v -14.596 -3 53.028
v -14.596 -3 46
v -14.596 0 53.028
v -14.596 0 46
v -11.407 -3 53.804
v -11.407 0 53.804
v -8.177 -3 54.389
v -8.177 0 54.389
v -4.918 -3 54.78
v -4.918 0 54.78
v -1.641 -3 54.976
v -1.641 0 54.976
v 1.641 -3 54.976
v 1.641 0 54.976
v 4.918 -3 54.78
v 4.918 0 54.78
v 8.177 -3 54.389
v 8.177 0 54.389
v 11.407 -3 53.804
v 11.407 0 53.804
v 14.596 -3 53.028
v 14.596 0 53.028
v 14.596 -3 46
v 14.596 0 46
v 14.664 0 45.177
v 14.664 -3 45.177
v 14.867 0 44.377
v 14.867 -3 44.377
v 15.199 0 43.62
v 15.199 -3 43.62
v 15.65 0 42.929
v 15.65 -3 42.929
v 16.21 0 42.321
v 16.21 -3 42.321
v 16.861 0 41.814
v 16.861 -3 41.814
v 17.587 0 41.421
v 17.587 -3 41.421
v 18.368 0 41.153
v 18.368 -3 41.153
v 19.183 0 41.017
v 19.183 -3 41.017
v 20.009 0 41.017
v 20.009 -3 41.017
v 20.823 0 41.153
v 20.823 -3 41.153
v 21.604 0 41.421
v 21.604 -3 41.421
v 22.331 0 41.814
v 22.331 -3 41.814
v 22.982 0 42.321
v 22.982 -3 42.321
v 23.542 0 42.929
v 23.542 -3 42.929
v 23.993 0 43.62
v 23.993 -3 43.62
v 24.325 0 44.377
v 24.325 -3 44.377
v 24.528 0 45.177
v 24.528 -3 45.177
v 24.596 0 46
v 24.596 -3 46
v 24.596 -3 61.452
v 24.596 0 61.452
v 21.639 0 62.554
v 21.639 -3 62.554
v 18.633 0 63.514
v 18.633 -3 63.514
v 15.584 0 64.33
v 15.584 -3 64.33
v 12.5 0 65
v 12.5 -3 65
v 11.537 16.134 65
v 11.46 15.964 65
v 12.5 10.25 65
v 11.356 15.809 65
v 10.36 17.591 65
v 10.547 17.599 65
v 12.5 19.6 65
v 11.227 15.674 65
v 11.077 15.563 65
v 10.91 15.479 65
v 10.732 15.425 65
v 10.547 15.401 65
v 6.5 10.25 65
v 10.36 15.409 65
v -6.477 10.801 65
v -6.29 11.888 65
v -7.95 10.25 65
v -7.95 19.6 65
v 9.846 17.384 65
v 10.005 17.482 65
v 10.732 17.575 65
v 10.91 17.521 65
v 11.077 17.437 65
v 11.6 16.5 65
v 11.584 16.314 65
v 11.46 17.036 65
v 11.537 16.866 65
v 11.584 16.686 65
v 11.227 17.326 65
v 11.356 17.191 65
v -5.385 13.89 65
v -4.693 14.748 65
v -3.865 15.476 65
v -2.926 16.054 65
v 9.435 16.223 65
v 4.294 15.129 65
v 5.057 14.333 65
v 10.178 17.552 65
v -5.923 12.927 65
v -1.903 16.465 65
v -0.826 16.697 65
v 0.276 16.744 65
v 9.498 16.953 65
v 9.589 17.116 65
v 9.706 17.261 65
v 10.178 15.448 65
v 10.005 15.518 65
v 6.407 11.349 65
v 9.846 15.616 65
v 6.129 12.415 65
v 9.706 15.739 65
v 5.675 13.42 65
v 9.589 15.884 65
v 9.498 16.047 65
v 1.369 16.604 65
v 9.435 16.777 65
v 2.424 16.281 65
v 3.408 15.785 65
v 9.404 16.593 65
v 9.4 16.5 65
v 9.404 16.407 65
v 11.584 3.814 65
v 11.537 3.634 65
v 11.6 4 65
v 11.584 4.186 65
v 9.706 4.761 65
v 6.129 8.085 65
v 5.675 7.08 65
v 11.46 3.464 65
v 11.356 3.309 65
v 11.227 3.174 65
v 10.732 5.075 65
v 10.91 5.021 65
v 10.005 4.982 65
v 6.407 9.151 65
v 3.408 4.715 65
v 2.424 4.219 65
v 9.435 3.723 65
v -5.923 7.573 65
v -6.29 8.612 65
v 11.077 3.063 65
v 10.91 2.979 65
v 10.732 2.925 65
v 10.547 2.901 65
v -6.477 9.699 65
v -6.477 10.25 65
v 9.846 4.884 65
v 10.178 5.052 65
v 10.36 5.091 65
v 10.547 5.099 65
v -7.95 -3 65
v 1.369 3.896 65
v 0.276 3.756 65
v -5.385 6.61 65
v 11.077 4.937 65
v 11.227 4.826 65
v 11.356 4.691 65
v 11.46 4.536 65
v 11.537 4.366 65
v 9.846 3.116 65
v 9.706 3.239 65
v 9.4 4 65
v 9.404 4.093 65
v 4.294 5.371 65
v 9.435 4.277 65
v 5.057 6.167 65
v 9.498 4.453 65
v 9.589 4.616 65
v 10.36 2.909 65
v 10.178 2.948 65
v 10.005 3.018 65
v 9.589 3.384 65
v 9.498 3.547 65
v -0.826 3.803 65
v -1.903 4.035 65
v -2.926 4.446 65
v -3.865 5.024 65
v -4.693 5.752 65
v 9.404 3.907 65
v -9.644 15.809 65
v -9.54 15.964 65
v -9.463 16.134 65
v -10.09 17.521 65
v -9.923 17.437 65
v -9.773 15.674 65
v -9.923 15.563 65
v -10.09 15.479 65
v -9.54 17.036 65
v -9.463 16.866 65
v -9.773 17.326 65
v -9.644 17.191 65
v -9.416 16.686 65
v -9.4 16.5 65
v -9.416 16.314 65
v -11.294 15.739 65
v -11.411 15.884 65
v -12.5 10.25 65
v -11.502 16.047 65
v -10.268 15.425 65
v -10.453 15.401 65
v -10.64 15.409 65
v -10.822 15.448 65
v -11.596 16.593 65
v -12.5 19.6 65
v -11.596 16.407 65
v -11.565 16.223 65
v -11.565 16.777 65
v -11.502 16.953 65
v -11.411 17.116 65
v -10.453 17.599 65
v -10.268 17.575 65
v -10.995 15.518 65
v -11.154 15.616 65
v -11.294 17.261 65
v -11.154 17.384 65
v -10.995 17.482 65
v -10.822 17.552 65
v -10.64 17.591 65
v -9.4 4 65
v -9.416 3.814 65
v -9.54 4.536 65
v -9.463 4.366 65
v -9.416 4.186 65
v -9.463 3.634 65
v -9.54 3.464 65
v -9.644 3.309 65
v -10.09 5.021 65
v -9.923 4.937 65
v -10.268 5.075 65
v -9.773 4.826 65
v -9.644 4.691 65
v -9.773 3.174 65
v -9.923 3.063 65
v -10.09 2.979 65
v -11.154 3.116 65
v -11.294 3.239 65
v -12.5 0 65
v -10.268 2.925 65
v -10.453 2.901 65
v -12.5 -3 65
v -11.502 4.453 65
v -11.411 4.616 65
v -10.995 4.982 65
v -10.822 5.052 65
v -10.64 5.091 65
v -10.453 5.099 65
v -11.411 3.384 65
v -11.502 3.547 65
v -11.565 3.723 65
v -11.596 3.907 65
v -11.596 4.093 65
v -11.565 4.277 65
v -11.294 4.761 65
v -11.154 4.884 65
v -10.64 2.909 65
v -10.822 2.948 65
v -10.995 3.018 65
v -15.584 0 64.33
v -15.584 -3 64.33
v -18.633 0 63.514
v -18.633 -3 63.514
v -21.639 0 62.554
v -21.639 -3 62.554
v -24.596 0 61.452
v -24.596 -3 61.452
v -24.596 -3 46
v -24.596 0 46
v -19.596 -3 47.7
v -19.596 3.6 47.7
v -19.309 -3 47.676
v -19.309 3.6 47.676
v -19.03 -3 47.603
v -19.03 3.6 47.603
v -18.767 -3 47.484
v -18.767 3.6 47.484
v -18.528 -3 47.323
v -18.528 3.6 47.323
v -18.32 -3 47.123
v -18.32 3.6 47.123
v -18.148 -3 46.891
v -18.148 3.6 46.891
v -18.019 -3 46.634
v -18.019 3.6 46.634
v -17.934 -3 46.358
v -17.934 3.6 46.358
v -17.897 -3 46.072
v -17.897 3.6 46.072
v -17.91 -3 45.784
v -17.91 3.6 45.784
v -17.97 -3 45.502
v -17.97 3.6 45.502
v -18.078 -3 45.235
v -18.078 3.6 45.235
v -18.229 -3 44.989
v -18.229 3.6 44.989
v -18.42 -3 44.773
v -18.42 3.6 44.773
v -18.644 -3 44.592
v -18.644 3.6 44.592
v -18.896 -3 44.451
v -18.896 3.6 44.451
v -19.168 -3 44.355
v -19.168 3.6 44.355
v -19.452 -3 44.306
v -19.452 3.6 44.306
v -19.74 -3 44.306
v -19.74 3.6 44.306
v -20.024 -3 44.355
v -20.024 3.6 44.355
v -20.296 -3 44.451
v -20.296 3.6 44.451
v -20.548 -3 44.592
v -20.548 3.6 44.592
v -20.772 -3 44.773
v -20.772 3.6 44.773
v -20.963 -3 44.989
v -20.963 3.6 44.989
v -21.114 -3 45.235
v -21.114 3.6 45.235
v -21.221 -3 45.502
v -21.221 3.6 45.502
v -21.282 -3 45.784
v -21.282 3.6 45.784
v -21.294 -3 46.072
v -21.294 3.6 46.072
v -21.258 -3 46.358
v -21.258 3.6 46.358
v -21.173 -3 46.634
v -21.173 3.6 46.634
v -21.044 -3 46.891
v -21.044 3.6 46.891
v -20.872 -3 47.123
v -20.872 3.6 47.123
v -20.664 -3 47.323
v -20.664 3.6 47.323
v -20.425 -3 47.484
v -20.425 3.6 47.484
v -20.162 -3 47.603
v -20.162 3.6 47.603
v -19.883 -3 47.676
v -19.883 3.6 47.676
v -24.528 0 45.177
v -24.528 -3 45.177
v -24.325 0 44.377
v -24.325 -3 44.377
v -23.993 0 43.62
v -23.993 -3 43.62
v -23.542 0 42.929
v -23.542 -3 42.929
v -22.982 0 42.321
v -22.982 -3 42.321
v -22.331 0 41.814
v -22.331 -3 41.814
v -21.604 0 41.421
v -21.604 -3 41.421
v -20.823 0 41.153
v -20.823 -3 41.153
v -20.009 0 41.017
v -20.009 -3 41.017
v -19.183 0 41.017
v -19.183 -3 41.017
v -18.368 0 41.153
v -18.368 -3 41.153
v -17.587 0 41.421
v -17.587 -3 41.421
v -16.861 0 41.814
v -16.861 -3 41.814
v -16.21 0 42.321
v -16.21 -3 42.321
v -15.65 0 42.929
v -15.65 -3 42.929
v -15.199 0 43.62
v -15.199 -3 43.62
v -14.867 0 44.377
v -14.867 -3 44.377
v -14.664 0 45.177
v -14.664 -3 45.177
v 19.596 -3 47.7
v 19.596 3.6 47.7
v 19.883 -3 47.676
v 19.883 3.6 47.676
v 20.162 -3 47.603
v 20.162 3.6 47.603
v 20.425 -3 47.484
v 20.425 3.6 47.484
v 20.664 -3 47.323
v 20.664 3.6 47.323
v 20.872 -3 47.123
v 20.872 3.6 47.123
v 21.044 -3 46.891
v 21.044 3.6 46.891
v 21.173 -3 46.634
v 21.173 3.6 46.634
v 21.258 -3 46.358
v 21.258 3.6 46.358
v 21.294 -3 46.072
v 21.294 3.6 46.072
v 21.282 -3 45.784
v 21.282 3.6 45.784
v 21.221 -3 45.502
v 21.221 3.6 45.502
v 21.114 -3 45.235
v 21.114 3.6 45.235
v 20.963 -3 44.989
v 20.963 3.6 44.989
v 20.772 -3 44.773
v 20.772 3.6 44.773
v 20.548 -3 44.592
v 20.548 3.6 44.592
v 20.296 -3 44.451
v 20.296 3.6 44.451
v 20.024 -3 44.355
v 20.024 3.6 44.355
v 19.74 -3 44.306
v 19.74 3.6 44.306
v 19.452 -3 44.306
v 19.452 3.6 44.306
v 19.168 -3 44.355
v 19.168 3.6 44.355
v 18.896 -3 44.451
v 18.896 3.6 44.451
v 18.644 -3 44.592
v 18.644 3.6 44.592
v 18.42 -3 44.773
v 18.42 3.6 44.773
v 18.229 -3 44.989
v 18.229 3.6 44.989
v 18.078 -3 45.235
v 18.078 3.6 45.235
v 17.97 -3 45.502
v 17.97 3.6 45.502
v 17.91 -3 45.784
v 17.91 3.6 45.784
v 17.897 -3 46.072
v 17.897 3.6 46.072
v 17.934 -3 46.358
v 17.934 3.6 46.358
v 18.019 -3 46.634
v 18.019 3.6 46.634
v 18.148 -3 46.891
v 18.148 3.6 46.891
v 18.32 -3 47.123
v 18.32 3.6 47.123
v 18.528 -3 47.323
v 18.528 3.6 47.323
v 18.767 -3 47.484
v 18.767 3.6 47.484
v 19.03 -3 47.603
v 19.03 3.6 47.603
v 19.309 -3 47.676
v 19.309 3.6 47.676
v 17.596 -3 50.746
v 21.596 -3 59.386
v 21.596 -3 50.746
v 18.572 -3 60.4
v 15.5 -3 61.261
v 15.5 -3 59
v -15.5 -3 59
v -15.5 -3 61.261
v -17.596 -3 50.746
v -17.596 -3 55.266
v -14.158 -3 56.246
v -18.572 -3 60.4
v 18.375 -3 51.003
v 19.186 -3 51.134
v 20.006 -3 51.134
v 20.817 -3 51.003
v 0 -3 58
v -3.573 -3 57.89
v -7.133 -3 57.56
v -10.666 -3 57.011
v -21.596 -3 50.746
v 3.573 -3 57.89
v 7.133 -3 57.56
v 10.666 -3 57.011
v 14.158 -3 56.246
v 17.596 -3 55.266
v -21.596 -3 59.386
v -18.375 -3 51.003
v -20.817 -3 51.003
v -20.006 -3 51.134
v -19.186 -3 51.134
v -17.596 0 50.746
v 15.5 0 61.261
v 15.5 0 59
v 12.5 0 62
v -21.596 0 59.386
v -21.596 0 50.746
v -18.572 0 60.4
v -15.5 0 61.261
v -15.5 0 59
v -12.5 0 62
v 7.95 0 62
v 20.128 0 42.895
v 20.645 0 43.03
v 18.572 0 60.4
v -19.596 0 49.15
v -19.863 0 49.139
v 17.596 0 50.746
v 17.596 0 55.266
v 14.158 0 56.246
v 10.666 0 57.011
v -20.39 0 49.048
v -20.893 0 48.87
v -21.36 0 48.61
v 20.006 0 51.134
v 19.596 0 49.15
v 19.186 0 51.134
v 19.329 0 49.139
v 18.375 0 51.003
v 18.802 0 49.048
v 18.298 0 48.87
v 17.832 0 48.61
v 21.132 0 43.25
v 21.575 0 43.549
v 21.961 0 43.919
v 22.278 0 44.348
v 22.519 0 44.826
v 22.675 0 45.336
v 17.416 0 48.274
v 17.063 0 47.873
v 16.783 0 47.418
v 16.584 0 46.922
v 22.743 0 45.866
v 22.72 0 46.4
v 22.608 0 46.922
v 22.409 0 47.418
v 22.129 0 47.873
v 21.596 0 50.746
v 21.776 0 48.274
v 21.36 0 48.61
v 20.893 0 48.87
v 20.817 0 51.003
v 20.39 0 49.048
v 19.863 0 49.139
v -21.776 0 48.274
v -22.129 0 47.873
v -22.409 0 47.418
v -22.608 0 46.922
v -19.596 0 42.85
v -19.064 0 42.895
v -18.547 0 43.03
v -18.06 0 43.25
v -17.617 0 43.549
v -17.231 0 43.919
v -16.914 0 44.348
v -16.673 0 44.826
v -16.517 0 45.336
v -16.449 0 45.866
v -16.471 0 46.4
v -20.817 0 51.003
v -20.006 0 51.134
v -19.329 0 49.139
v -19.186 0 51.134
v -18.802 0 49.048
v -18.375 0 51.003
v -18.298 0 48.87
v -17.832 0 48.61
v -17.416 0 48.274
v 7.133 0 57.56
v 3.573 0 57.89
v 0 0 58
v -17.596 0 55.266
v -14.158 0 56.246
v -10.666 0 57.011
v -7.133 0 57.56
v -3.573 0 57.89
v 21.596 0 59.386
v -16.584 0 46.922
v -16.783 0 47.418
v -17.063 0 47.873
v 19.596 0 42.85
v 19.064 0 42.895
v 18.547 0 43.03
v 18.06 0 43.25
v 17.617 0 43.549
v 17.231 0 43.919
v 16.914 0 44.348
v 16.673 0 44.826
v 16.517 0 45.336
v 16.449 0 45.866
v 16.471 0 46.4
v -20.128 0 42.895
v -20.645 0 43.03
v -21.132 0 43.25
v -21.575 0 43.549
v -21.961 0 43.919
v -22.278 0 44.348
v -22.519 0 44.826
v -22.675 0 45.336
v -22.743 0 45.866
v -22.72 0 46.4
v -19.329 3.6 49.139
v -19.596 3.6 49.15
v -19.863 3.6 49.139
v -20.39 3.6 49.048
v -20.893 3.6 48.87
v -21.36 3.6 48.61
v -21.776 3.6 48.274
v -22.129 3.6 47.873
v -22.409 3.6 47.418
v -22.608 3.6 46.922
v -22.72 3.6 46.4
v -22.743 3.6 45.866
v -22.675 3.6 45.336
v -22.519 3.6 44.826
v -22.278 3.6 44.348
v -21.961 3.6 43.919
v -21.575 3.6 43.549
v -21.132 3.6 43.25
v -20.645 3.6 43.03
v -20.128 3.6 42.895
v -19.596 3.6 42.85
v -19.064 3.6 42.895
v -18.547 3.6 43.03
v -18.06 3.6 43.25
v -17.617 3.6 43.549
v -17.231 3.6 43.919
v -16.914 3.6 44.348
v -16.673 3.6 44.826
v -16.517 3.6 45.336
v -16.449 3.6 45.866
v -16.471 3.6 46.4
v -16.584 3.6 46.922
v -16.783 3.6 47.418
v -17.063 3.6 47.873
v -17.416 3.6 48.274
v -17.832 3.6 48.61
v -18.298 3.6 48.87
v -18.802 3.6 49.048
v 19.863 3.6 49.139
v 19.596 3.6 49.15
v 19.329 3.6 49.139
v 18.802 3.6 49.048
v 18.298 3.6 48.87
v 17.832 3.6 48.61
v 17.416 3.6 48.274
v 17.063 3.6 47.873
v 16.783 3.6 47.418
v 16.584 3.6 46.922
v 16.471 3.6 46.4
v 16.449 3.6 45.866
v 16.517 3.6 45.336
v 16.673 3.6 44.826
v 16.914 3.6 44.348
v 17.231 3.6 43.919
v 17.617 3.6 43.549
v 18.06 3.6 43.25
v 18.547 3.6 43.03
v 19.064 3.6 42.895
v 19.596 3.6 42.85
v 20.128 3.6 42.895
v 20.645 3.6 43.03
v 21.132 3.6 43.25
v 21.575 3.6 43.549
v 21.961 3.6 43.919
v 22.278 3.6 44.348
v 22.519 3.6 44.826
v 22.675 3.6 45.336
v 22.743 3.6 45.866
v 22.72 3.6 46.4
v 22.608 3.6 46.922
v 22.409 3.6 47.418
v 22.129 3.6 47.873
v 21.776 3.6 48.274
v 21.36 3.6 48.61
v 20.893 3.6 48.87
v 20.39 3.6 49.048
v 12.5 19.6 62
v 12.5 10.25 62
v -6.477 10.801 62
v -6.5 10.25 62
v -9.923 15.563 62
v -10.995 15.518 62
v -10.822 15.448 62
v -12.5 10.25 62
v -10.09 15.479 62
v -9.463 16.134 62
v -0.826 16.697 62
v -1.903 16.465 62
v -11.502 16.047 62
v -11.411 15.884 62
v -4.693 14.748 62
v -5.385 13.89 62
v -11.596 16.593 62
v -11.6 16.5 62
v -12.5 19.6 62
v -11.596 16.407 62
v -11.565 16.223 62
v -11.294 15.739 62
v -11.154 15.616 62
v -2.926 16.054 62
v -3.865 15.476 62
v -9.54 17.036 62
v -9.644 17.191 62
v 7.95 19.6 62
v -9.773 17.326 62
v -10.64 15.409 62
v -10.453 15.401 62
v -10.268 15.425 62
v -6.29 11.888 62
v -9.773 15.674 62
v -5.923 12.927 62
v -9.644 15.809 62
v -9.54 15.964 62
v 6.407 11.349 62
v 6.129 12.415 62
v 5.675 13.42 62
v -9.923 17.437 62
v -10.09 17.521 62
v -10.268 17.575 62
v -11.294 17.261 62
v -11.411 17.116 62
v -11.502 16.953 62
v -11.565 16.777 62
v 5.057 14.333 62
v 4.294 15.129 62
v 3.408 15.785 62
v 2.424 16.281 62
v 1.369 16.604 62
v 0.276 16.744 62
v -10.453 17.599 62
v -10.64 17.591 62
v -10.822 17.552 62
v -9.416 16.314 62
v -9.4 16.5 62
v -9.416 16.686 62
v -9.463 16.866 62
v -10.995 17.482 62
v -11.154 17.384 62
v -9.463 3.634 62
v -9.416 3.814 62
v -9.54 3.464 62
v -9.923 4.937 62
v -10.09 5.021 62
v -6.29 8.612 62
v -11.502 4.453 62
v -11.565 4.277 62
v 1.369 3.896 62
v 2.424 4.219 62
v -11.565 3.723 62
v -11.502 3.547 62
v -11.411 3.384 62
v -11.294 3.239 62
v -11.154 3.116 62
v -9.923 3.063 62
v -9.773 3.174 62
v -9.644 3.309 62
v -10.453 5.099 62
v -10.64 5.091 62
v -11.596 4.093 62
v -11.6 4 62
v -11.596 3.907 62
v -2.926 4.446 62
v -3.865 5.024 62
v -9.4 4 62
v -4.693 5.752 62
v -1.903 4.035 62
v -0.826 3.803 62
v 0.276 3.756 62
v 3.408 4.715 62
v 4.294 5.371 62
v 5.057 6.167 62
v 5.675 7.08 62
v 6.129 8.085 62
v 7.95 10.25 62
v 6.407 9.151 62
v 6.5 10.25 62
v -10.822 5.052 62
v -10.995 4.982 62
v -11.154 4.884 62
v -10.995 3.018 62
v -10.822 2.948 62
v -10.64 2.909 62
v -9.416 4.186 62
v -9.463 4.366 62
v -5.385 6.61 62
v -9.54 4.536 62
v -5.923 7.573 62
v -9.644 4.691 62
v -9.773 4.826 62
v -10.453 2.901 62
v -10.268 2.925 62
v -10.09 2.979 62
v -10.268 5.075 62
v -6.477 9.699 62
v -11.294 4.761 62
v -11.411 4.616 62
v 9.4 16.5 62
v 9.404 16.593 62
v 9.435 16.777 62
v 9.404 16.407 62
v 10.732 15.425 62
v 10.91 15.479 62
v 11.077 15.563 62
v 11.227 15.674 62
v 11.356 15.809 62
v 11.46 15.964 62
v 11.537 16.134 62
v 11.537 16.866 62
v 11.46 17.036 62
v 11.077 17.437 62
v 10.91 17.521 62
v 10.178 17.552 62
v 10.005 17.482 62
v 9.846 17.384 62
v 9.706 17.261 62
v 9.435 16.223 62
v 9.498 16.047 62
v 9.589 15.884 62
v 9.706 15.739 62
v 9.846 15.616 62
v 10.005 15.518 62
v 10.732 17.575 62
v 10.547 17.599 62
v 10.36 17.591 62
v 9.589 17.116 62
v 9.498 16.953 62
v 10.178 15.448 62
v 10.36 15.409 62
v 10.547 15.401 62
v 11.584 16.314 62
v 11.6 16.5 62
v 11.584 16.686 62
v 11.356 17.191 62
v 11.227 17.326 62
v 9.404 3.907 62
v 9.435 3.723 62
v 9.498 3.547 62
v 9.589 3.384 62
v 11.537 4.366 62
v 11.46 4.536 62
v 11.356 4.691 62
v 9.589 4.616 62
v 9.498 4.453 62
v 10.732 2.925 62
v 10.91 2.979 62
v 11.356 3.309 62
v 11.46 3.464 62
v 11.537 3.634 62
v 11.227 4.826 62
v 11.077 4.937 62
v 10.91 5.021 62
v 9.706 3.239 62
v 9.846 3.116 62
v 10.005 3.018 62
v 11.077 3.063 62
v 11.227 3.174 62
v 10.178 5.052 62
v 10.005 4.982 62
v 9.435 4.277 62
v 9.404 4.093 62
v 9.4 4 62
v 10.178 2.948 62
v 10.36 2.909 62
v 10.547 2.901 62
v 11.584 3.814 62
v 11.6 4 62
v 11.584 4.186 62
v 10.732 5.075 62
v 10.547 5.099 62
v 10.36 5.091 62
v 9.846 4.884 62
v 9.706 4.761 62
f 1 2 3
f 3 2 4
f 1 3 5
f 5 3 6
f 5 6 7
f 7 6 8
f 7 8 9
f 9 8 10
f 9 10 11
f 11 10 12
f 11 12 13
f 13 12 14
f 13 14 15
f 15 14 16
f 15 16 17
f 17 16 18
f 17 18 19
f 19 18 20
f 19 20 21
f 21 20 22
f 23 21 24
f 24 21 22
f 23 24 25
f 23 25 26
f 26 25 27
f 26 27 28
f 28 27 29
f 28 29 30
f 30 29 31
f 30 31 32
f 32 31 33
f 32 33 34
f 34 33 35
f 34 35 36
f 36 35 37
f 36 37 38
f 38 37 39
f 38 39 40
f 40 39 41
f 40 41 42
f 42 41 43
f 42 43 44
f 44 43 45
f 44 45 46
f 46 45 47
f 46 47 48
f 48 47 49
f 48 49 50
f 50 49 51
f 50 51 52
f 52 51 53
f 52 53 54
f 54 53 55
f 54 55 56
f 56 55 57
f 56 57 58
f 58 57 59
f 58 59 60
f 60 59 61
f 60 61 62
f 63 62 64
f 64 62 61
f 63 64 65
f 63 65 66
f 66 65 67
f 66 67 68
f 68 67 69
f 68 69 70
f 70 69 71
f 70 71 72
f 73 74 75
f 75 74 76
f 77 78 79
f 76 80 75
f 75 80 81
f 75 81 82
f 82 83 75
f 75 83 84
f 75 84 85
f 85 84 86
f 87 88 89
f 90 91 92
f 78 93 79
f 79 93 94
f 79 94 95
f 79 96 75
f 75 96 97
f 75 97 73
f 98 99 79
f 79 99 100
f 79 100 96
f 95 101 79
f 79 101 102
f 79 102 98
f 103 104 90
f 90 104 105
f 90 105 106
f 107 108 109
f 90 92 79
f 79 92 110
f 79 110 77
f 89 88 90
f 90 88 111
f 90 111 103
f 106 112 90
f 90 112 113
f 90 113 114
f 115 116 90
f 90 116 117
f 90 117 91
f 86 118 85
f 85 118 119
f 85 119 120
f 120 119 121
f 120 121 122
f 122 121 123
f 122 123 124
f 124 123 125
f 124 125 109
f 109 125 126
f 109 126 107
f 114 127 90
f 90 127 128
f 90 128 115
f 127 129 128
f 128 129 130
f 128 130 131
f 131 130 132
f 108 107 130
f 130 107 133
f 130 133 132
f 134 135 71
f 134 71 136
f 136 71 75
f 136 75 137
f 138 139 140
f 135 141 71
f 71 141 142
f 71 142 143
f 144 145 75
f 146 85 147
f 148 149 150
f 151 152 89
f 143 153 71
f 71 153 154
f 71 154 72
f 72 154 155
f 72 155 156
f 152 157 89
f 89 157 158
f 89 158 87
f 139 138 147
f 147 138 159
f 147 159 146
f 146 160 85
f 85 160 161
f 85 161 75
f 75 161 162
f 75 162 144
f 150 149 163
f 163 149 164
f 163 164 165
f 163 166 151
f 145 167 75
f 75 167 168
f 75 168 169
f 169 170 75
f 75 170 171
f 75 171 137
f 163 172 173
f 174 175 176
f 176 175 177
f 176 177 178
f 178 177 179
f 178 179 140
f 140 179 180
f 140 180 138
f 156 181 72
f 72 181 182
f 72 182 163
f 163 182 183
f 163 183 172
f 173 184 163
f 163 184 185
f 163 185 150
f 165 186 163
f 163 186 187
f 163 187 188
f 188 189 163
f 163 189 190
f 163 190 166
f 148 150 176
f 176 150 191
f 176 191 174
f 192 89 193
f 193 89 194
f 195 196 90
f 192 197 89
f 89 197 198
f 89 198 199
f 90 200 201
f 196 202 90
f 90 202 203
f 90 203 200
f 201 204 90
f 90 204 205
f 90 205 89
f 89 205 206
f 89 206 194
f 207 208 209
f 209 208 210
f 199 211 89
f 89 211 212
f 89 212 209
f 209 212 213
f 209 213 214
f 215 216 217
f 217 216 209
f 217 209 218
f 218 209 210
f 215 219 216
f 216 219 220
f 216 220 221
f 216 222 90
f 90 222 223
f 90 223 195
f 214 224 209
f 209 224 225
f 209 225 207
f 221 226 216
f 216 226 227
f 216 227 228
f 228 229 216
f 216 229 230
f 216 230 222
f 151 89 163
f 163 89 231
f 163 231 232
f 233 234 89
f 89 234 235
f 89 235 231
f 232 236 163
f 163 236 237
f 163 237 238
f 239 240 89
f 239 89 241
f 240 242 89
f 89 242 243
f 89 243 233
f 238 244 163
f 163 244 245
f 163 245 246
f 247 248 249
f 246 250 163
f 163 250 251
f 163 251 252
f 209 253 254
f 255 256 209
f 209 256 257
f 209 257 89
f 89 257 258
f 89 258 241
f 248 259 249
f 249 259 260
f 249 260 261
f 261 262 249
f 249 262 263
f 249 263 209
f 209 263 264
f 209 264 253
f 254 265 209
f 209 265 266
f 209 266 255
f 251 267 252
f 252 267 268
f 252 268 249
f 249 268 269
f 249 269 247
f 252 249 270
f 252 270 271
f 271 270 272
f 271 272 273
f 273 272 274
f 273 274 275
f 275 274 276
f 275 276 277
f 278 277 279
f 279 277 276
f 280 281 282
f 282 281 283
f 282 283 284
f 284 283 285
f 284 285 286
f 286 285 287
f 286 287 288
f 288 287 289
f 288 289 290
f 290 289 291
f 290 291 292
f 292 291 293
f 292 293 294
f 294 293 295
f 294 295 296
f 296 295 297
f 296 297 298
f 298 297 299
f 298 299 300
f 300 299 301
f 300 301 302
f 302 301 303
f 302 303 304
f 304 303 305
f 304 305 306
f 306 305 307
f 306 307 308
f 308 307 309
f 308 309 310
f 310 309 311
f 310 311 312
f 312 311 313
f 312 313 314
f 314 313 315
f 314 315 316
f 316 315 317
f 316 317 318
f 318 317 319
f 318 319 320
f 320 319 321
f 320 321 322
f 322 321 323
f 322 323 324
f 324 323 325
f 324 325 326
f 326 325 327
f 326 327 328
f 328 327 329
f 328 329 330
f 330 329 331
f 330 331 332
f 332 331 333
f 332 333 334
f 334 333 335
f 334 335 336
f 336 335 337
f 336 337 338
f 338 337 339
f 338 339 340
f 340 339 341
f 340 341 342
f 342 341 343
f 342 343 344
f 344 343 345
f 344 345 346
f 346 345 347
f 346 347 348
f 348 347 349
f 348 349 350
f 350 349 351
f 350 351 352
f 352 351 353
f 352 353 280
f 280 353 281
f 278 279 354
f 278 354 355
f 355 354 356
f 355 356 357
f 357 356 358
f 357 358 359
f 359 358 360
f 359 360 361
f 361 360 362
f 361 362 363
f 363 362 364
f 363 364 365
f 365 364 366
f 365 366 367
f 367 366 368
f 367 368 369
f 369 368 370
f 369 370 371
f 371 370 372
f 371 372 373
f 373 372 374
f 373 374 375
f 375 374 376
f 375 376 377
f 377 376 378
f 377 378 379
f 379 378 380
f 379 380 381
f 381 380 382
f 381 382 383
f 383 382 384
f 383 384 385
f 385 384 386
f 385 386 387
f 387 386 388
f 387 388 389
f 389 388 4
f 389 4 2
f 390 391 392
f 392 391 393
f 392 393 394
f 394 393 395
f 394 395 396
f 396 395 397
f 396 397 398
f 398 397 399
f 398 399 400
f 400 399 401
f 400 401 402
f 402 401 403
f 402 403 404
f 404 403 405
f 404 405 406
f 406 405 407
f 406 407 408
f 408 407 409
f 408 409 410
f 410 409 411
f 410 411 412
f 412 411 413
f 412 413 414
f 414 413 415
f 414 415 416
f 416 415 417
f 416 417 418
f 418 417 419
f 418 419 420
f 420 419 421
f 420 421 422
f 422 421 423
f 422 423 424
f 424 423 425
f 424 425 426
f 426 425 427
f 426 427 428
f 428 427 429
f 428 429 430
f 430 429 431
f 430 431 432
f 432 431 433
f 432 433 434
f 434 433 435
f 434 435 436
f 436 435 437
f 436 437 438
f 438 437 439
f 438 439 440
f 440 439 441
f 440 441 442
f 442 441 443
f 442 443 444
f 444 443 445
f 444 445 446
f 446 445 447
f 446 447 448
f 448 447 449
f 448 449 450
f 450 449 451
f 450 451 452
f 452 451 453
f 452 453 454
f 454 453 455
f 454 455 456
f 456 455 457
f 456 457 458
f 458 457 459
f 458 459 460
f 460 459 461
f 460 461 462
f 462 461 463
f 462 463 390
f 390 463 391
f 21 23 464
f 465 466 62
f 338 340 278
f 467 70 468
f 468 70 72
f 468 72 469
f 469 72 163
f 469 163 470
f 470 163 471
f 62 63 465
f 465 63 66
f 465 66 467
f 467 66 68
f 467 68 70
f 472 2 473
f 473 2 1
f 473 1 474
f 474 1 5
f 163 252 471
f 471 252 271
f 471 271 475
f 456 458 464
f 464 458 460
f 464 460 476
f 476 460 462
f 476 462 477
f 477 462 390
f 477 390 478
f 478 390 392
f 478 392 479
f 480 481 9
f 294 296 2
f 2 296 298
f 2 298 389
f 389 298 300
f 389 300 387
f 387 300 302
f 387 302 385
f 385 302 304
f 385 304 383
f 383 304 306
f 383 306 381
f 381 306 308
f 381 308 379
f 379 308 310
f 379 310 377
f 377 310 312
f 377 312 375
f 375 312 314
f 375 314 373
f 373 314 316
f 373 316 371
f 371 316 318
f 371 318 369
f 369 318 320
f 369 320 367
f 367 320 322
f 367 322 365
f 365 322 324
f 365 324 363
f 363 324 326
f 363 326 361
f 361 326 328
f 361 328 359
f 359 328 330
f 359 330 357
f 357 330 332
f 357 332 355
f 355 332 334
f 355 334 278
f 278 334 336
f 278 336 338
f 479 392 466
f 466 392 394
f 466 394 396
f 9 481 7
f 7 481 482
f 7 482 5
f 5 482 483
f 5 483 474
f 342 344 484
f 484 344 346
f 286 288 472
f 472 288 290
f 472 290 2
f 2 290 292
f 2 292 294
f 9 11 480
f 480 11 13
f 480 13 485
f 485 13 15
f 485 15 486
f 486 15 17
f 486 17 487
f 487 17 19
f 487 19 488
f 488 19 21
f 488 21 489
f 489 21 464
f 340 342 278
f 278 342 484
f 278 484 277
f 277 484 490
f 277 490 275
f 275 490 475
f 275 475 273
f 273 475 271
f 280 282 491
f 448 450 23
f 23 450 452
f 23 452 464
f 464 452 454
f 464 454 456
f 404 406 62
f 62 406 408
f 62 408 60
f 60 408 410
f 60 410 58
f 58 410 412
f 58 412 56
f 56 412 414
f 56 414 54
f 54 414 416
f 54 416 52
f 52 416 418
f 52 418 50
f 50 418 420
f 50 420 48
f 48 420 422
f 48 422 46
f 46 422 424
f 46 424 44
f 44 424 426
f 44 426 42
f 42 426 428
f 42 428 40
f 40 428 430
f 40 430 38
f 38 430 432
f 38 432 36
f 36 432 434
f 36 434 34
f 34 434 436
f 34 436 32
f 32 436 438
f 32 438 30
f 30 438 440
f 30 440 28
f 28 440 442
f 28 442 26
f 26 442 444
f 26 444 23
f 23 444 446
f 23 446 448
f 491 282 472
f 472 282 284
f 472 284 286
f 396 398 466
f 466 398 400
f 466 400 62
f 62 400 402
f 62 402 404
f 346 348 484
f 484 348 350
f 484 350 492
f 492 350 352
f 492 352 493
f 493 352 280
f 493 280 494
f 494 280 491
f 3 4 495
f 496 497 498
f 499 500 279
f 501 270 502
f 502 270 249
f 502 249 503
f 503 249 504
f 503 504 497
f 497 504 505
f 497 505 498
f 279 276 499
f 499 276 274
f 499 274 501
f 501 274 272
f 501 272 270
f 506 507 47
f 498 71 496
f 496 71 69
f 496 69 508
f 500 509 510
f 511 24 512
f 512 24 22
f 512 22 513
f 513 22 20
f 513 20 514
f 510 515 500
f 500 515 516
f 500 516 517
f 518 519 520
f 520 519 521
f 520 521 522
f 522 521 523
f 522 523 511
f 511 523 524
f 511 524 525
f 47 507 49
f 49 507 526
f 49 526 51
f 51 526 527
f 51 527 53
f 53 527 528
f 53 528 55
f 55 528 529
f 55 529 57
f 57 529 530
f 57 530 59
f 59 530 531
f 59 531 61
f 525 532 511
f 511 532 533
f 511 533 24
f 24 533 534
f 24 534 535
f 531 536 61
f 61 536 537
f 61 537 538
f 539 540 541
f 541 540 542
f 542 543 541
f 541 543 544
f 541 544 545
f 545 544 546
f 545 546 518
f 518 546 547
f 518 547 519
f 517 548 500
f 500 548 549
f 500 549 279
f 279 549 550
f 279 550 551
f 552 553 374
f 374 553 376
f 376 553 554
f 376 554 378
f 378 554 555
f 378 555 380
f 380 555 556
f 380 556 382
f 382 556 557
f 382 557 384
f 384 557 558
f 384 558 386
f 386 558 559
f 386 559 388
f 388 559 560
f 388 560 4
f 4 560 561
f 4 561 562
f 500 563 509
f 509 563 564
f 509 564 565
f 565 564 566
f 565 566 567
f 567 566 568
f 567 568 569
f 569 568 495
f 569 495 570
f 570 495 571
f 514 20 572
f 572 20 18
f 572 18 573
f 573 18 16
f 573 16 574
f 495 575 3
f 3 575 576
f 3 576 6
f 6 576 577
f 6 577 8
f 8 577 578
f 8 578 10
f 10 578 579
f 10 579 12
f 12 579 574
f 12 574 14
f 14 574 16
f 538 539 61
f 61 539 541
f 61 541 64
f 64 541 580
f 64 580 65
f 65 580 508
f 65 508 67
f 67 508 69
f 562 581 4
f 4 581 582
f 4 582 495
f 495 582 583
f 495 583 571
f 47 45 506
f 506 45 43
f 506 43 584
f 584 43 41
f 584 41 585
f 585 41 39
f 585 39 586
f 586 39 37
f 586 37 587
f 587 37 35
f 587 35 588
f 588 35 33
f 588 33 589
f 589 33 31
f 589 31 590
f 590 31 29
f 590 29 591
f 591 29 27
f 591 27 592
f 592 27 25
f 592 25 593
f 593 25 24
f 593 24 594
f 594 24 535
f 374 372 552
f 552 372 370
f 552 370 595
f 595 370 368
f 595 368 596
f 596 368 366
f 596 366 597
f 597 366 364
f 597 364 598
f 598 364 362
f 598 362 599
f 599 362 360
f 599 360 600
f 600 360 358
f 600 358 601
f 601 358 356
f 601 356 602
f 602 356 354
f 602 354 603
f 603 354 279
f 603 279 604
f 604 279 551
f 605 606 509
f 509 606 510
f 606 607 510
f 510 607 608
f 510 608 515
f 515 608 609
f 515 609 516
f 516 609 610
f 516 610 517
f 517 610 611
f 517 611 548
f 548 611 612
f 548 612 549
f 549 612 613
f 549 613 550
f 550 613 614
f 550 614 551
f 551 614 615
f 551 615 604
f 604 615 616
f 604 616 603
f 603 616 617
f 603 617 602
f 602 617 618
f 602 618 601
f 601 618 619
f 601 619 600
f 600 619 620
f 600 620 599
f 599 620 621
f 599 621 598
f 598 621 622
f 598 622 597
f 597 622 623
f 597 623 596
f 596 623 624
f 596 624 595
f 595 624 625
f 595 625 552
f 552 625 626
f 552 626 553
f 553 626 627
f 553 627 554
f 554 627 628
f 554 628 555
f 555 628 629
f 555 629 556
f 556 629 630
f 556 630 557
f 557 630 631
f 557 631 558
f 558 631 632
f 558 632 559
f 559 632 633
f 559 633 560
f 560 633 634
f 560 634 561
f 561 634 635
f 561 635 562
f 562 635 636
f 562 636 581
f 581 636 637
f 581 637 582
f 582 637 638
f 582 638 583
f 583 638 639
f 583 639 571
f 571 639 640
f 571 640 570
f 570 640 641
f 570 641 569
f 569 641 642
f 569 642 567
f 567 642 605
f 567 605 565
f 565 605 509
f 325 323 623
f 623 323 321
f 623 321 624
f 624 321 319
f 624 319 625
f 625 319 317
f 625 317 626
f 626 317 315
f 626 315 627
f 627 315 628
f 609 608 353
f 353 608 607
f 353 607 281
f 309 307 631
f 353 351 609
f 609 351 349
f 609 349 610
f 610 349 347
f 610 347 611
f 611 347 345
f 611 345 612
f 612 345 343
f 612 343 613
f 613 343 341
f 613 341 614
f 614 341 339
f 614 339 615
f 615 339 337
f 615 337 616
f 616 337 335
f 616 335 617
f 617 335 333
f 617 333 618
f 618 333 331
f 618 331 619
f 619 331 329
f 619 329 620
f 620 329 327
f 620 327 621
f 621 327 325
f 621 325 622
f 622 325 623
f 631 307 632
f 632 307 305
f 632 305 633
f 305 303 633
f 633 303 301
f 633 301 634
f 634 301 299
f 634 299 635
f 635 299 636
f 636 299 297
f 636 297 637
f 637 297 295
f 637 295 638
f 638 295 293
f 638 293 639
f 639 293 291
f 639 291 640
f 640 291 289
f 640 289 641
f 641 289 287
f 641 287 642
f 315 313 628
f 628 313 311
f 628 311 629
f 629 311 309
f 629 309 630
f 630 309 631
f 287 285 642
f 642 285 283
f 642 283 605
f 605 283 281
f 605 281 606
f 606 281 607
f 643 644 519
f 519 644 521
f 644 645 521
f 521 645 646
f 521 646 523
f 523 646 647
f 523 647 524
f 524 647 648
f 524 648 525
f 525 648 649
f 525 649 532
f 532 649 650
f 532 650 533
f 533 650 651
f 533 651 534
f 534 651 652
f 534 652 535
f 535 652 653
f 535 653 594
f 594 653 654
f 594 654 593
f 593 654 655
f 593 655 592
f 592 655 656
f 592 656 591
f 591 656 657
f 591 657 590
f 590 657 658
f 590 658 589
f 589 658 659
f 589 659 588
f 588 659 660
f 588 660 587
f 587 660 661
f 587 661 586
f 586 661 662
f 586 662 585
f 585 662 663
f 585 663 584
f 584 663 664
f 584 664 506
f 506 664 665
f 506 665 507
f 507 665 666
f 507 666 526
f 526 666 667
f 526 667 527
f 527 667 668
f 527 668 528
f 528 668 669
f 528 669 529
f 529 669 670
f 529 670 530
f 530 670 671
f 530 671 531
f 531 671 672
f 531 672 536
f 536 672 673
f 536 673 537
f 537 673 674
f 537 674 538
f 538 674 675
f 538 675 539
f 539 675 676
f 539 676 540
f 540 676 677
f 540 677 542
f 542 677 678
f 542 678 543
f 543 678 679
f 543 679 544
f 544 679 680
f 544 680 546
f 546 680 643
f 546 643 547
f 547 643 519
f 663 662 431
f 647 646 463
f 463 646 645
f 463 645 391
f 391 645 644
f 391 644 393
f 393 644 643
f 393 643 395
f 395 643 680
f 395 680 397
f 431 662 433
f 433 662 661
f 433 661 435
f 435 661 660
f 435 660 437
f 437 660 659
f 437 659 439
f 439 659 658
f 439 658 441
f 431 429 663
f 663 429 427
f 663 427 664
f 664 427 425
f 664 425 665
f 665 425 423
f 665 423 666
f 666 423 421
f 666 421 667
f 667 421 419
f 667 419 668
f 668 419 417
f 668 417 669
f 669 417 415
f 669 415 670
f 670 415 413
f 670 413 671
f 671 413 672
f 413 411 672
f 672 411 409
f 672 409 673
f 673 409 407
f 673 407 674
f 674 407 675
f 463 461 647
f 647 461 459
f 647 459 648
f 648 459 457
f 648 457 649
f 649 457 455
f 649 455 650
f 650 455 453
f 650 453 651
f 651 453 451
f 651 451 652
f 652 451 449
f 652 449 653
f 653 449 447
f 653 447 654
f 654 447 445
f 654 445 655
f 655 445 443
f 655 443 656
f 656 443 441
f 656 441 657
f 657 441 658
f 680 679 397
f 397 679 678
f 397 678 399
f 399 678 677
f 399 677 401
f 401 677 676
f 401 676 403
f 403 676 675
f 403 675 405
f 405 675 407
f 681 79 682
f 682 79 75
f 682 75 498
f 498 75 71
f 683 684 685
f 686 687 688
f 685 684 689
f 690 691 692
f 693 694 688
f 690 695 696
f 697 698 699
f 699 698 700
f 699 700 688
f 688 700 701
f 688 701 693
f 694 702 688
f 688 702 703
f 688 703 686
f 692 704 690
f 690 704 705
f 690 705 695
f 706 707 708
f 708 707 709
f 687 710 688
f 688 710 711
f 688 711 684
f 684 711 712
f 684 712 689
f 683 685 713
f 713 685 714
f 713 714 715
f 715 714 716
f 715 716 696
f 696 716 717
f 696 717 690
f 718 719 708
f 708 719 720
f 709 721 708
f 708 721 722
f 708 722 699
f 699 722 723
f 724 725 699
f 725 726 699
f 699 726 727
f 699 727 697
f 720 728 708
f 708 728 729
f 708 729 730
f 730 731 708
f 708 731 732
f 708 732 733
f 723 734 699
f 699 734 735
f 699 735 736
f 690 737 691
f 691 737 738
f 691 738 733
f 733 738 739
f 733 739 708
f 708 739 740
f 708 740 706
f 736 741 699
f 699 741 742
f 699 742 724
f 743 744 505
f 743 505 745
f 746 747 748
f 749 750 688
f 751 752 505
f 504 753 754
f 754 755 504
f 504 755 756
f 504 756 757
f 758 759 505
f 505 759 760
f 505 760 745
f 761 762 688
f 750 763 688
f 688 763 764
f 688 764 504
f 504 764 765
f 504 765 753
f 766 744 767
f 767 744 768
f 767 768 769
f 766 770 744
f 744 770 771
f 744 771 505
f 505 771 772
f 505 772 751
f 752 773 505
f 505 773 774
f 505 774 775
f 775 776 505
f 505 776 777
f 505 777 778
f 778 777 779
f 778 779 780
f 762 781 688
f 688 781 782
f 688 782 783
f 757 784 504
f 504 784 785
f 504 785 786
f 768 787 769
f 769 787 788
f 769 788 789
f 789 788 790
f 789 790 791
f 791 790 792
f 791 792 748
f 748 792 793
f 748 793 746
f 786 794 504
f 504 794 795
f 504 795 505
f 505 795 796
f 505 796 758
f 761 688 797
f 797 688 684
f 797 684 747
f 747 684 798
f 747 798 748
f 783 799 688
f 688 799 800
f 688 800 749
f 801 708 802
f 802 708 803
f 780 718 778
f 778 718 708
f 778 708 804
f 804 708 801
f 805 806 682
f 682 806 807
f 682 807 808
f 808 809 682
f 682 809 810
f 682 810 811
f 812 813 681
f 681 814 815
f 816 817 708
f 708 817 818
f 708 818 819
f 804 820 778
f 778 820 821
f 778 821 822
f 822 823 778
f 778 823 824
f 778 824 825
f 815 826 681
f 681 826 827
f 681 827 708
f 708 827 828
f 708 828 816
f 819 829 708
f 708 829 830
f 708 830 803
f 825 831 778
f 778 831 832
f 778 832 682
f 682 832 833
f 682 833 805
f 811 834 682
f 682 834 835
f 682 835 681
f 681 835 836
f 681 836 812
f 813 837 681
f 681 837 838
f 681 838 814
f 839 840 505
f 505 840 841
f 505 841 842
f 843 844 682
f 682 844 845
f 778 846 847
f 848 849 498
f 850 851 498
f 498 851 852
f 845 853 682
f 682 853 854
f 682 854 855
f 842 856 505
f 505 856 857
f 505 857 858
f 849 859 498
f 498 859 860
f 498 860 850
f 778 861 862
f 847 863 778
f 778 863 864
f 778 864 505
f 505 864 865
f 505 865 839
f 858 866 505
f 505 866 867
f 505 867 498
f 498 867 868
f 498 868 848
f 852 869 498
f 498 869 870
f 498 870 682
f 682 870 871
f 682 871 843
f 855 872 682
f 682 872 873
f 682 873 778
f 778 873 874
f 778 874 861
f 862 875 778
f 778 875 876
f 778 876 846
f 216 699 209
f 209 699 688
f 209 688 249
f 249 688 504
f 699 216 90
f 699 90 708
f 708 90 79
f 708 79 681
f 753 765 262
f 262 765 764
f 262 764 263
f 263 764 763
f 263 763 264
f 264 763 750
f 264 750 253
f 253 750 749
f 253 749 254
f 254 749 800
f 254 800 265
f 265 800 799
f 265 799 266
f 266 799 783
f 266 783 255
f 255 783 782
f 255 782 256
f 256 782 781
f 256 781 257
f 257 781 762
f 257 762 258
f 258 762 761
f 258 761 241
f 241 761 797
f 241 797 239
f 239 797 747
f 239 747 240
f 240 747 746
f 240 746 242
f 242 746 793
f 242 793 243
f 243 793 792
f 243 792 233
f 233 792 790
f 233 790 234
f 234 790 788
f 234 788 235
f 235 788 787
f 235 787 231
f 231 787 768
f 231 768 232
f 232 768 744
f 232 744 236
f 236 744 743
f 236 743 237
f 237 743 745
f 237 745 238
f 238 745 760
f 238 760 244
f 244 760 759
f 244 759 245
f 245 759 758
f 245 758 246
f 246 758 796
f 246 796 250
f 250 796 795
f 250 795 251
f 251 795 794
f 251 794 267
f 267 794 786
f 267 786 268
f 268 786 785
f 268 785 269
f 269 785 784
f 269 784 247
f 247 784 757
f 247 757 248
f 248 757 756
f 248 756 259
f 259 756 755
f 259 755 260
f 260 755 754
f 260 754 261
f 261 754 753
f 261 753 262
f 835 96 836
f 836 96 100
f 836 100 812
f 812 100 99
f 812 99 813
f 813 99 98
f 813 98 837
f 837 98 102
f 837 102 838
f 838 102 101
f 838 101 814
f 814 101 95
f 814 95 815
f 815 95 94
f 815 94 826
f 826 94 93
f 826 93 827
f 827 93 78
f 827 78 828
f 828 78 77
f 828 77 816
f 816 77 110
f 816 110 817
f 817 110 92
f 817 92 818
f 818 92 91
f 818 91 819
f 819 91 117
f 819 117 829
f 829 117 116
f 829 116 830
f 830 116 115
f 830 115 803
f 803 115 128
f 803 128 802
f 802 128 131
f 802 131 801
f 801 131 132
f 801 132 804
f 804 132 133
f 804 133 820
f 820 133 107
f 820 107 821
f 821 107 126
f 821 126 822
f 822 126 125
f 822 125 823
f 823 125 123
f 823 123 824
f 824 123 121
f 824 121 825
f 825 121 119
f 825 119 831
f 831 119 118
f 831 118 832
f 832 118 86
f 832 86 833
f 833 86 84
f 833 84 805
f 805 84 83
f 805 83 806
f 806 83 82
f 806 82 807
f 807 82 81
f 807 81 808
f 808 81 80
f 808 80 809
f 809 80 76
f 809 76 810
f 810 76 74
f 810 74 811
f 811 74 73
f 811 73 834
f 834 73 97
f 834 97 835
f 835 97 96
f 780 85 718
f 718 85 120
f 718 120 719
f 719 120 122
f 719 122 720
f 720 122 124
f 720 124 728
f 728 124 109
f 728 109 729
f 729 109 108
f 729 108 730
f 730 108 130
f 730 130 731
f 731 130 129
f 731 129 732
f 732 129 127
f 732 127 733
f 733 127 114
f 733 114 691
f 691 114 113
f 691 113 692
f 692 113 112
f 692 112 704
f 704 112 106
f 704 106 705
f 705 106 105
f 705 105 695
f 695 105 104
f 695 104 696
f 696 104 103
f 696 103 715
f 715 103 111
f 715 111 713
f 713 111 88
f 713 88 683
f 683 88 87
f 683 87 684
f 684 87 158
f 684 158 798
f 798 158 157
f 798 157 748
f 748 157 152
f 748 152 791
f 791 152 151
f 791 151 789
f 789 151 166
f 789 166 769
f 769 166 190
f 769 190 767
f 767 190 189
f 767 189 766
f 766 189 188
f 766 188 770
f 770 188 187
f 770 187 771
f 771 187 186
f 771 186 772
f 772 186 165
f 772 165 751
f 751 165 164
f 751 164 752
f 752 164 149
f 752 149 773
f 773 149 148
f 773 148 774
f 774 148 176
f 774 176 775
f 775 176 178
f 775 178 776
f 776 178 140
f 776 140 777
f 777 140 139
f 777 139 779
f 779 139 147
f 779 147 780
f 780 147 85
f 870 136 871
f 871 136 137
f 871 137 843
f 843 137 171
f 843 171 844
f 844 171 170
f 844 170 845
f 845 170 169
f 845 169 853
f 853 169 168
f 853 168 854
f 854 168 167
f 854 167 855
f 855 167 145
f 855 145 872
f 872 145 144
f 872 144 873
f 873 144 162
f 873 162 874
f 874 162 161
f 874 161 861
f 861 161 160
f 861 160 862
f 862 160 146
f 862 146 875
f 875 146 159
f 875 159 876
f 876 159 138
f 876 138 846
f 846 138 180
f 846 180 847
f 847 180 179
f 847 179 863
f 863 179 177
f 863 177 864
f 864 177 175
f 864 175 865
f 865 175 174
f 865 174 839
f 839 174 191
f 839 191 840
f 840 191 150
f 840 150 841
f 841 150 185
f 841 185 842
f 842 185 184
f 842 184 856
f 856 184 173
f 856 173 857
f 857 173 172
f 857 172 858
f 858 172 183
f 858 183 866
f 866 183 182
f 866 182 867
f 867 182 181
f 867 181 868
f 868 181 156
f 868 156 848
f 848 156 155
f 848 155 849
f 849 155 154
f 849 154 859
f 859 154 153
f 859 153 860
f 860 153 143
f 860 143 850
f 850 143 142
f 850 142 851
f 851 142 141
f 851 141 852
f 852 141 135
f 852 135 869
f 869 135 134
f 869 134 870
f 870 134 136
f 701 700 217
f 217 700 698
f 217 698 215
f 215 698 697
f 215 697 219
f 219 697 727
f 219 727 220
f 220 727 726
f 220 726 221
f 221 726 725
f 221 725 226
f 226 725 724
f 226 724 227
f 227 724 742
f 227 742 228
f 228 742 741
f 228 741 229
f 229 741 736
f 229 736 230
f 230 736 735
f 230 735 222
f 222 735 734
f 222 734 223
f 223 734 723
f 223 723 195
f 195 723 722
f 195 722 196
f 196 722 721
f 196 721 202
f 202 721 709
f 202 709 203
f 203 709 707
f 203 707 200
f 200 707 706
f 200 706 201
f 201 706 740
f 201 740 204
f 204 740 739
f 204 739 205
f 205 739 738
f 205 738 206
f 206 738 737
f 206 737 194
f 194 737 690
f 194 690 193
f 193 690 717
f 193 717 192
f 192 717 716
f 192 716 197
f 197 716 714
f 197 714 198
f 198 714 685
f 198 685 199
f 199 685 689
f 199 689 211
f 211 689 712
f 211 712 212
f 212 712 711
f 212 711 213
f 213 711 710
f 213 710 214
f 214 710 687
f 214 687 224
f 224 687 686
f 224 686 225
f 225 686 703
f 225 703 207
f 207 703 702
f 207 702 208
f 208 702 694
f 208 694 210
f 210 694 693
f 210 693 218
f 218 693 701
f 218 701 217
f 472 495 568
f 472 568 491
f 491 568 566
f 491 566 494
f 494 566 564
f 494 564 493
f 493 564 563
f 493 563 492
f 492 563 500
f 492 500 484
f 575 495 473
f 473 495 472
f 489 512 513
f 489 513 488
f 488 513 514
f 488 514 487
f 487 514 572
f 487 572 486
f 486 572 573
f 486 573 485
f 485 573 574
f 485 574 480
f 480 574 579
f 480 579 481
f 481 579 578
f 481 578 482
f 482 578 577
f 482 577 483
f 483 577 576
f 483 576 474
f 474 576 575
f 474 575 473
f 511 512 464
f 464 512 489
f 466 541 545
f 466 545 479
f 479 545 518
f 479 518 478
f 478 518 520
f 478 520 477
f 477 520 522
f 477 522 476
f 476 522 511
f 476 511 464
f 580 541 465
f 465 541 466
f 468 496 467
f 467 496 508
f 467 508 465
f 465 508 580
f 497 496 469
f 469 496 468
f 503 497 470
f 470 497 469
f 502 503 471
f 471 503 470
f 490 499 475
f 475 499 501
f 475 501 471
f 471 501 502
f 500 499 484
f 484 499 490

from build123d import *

# Parameters (mm, degrees)
SKETCH1_R           = 1.7
BOSS_EXTRUDE2_DEPTH = 3
SKETCH1_5_R         = 3.15
SKETCH1_5_R_2       = 1.7
SKETCH1_5_W         = 25
SKETCH1_5_H         = 3
BOSS_EXTRUDE3_DEPTH = 3.6
BOSS_EXTRUDE4_START = 3.6
SKETCH1_7_W         = 25
SKETCH1_7_H         = 3
BOSS_EXTRUDE4_DEPTH = 16
CUT_EXTRUDE1_REACH  = 26
SKETCH2_R           = 1.1
SKETCH2_R_2         = 6.5
CUT_EXTRUDE2_REACH  = 5


with BuildPart() as part:
    # Sketch1 → Boss-Extrude2 (new body)
    with BuildSketch(Plane(origin=(0, 0, 0), x_dir=(1, 0, 0), z_dir=(0, 1, 0))):
        with BuildLine():
            ThreePointArc((24.595917942, -46), (19.595917942, -41), (14.595917942, -46))
            Line((14.595917942, -46), (14.595917942, -53.027909439))
            ThreePointArc((14.595917942, -53.027909439), (0, -55), (-14.595917942, -53.027909439))
            Line((-14.595917942, -53.027909439), (-14.595917942, -46))
            ThreePointArc((-14.595917942, -46), (-19.595917942, -41), (-24.595917942, -46))
            Line((-24.595917942, -46), (-24.595917942, -61.451532288))
            ThreePointArc((-24.595917942, -61.451532288), (-18.632624286, -63.514370911), (-12.5, -65))
            Line((-12.5, -65), (12.5, -65))
            ThreePointArc((12.5, -65), (18.632624286, -63.514370911), (24.595917942, -61.451532288))
            Line((24.595917942, -61.451532288), (24.595917942, -46))
        make_face()
        with Locations((-19.595917942, -46)):
            Circle(SKETCH1_R, mode=Mode.SUBTRACT)
        with Locations((19.595917942, -46)):
            Circle(SKETCH1_R, mode=Mode.SUBTRACT)
    extrude(amount=-BOSS_EXTRUDE2_DEPTH)

    # Sketch1<5> → Boss-Extrude3 (add)
    with BuildSketch(Plane(origin=(0, 0, 0), x_dir=(1, 0, 0), z_dir=(0, 1, 0))):
        with Locations((-19.595917942, -46)):
            Circle(SKETCH1_5_R)
        with Locations((-19.595917942, -46)):
            Circle(SKETCH1_5_R_2, mode=Mode.SUBTRACT)
        with Locations((19.595917942, -46)):
            Circle(SKETCH1_5_R)
        with Locations((19.595917942, -46)):
            Circle(SKETCH1_5_R_2, mode=Mode.SUBTRACT)
        with Locations((0, -63.5)):
            Rectangle(SKETCH1_5_W, SKETCH1_5_H)
    extrude(amount=BOSS_EXTRUDE3_DEPTH)

    # Sketch1<7> → Boss-Extrude4 (add)
    with BuildSketch(Plane(origin=(0, 0, 0), x_dir=(1, 0, 0), z_dir=(0, 1, 0)).offset(BOSS_EXTRUDE4_START)):
        with Locations((0, -63.5)):
            Rectangle(SKETCH1_7_W, SKETCH1_7_H)
    extrude(amount=BOSS_EXTRUDE4_DEPTH)

    # Sketch2 → Cut-Extrude1 (cut, up to next)
    with BuildSketch(Plane.XY.offset(65), mode=Mode.PRIVATE) as cut_extrude1_sk1:
        with Locations((-10.5, 4)):
            Circle(SKETCH2_R)
    cut_extrude1_tool1 = extrude(cut_extrude1_sk1.sketch, amount=-CUT_EXTRUDE1_REACH, mode=Mode.PRIVATE) & part.part
    add(cut_extrude1_tool1.solids().sort_by_distance((-10.5, 4, 65))[0], mode=Mode.SUBTRACT)
    # Sketch2 → Cut-Extrude1 (cut, up to next)
    with BuildSketch(Plane.XY.offset(65), mode=Mode.PRIVATE) as cut_extrude1_sk2:
        with Locations((-10.5, 16.5)):
            Circle(SKETCH2_R)
    cut_extrude1_tool2 = extrude(cut_extrude1_sk2.sketch, amount=-CUT_EXTRUDE1_REACH, mode=Mode.PRIVATE) & part.part
    add(cut_extrude1_tool2.solids().sort_by_distance((-10.5, 16.5, 65))[0], mode=Mode.SUBTRACT)
    # Sketch2 → Cut-Extrude1 (cut, up to next)
    with BuildSketch(Plane.XY.offset(65), mode=Mode.PRIVATE) as cut_extrude1_sk3:
        with Locations((10.5, 4)):
            Circle(SKETCH2_R)
    cut_extrude1_tool3 = extrude(cut_extrude1_sk3.sketch, amount=-CUT_EXTRUDE1_REACH, mode=Mode.PRIVATE) & part.part
    add(cut_extrude1_tool3.solids().sort_by_distance((10.5, 4, 65))[0], mode=Mode.SUBTRACT)
    # Sketch2 → Cut-Extrude1 (cut, up to next)
    with BuildSketch(Plane.XY.offset(65), mode=Mode.PRIVATE) as cut_extrude1_sk4:
        with Locations((10.5, 16.5)):
            Circle(SKETCH2_R)
    cut_extrude1_tool4 = extrude(cut_extrude1_sk4.sketch, amount=-CUT_EXTRUDE1_REACH, mode=Mode.PRIVATE) & part.part
    add(cut_extrude1_tool4.solids().sort_by_distance((10.5, 16.5, 65))[0], mode=Mode.SUBTRACT)
    # Sketch2 → Cut-Extrude1 (cut, up to next)
    with BuildSketch(Plane.XY.offset(65), mode=Mode.PRIVATE) as cut_extrude1_sk5:
        with Locations((0, 10.25)):
            Circle(SKETCH2_R_2)
    cut_extrude1_tool5 = extrude(cut_extrude1_sk5.sketch, amount=-CUT_EXTRUDE1_REACH, mode=Mode.PRIVATE) & part.part
    add(cut_extrude1_tool5.solids().sort_by_distance((0, 10.25, 65))[0], mode=Mode.SUBTRACT)

    # Sketch3 → Cut-Extrude2 (cut, up to next)
    with BuildSketch(Plane(origin=(0, 0, 0), x_dir=(1, 0, 0), z_dir=(0, 1, 0)), mode=Mode.PRIVATE) as cut_extrude2_sk1:
        with BuildLine():
            Line((-15.5, -61.260541388), (-15.5, -59))
            Line((-15.5, -59), (15.5, -59))
            Line((15.5, -59), (15.5, -61.260541388))
            ThreePointArc((15.5, -61.260541388), (18.571620144, -60.400321658), (21.595917942, -59.386195866))
            Line((21.595917942, -59.386195866), (21.595917942, -50.745787606))
            ThreePointArc((21.595917942, -50.745787606), (19.595917942, -51.15), (17.595917942, -50.745787606))
            Line((17.595917942, -50.745787606), (17.595917942, -55.266478735))
            ThreePointArc((17.595917942, -55.266478735), (0, -58), (-17.595917942, -55.266478735))
            Line((-17.595917942, -55.266478735), (-17.595917942, -50.745787606))
            ThreePointArc((-17.595917942, -50.745787606), (-19.595917942, -51.15), (-21.595917942, -50.745787606))
            Line((-21.595917942, -50.745787606), (-21.595917942, -59.386195866))
            ThreePointArc((-21.595917942, -59.386195866), (-18.571620144, -60.400321658), (-15.5, -61.260541388))
        make_face()
    cut_extrude2_tool1 = extrude(cut_extrude2_sk1.sketch, amount=-CUT_EXTRUDE2_REACH, mode=Mode.PRIVATE) & part.part
    add(cut_extrude2_tool1.solids().sort_by_distance((-18.040451, 0, 53.006133))[0], mode=Mode.SUBTRACT)


solid = part.part
